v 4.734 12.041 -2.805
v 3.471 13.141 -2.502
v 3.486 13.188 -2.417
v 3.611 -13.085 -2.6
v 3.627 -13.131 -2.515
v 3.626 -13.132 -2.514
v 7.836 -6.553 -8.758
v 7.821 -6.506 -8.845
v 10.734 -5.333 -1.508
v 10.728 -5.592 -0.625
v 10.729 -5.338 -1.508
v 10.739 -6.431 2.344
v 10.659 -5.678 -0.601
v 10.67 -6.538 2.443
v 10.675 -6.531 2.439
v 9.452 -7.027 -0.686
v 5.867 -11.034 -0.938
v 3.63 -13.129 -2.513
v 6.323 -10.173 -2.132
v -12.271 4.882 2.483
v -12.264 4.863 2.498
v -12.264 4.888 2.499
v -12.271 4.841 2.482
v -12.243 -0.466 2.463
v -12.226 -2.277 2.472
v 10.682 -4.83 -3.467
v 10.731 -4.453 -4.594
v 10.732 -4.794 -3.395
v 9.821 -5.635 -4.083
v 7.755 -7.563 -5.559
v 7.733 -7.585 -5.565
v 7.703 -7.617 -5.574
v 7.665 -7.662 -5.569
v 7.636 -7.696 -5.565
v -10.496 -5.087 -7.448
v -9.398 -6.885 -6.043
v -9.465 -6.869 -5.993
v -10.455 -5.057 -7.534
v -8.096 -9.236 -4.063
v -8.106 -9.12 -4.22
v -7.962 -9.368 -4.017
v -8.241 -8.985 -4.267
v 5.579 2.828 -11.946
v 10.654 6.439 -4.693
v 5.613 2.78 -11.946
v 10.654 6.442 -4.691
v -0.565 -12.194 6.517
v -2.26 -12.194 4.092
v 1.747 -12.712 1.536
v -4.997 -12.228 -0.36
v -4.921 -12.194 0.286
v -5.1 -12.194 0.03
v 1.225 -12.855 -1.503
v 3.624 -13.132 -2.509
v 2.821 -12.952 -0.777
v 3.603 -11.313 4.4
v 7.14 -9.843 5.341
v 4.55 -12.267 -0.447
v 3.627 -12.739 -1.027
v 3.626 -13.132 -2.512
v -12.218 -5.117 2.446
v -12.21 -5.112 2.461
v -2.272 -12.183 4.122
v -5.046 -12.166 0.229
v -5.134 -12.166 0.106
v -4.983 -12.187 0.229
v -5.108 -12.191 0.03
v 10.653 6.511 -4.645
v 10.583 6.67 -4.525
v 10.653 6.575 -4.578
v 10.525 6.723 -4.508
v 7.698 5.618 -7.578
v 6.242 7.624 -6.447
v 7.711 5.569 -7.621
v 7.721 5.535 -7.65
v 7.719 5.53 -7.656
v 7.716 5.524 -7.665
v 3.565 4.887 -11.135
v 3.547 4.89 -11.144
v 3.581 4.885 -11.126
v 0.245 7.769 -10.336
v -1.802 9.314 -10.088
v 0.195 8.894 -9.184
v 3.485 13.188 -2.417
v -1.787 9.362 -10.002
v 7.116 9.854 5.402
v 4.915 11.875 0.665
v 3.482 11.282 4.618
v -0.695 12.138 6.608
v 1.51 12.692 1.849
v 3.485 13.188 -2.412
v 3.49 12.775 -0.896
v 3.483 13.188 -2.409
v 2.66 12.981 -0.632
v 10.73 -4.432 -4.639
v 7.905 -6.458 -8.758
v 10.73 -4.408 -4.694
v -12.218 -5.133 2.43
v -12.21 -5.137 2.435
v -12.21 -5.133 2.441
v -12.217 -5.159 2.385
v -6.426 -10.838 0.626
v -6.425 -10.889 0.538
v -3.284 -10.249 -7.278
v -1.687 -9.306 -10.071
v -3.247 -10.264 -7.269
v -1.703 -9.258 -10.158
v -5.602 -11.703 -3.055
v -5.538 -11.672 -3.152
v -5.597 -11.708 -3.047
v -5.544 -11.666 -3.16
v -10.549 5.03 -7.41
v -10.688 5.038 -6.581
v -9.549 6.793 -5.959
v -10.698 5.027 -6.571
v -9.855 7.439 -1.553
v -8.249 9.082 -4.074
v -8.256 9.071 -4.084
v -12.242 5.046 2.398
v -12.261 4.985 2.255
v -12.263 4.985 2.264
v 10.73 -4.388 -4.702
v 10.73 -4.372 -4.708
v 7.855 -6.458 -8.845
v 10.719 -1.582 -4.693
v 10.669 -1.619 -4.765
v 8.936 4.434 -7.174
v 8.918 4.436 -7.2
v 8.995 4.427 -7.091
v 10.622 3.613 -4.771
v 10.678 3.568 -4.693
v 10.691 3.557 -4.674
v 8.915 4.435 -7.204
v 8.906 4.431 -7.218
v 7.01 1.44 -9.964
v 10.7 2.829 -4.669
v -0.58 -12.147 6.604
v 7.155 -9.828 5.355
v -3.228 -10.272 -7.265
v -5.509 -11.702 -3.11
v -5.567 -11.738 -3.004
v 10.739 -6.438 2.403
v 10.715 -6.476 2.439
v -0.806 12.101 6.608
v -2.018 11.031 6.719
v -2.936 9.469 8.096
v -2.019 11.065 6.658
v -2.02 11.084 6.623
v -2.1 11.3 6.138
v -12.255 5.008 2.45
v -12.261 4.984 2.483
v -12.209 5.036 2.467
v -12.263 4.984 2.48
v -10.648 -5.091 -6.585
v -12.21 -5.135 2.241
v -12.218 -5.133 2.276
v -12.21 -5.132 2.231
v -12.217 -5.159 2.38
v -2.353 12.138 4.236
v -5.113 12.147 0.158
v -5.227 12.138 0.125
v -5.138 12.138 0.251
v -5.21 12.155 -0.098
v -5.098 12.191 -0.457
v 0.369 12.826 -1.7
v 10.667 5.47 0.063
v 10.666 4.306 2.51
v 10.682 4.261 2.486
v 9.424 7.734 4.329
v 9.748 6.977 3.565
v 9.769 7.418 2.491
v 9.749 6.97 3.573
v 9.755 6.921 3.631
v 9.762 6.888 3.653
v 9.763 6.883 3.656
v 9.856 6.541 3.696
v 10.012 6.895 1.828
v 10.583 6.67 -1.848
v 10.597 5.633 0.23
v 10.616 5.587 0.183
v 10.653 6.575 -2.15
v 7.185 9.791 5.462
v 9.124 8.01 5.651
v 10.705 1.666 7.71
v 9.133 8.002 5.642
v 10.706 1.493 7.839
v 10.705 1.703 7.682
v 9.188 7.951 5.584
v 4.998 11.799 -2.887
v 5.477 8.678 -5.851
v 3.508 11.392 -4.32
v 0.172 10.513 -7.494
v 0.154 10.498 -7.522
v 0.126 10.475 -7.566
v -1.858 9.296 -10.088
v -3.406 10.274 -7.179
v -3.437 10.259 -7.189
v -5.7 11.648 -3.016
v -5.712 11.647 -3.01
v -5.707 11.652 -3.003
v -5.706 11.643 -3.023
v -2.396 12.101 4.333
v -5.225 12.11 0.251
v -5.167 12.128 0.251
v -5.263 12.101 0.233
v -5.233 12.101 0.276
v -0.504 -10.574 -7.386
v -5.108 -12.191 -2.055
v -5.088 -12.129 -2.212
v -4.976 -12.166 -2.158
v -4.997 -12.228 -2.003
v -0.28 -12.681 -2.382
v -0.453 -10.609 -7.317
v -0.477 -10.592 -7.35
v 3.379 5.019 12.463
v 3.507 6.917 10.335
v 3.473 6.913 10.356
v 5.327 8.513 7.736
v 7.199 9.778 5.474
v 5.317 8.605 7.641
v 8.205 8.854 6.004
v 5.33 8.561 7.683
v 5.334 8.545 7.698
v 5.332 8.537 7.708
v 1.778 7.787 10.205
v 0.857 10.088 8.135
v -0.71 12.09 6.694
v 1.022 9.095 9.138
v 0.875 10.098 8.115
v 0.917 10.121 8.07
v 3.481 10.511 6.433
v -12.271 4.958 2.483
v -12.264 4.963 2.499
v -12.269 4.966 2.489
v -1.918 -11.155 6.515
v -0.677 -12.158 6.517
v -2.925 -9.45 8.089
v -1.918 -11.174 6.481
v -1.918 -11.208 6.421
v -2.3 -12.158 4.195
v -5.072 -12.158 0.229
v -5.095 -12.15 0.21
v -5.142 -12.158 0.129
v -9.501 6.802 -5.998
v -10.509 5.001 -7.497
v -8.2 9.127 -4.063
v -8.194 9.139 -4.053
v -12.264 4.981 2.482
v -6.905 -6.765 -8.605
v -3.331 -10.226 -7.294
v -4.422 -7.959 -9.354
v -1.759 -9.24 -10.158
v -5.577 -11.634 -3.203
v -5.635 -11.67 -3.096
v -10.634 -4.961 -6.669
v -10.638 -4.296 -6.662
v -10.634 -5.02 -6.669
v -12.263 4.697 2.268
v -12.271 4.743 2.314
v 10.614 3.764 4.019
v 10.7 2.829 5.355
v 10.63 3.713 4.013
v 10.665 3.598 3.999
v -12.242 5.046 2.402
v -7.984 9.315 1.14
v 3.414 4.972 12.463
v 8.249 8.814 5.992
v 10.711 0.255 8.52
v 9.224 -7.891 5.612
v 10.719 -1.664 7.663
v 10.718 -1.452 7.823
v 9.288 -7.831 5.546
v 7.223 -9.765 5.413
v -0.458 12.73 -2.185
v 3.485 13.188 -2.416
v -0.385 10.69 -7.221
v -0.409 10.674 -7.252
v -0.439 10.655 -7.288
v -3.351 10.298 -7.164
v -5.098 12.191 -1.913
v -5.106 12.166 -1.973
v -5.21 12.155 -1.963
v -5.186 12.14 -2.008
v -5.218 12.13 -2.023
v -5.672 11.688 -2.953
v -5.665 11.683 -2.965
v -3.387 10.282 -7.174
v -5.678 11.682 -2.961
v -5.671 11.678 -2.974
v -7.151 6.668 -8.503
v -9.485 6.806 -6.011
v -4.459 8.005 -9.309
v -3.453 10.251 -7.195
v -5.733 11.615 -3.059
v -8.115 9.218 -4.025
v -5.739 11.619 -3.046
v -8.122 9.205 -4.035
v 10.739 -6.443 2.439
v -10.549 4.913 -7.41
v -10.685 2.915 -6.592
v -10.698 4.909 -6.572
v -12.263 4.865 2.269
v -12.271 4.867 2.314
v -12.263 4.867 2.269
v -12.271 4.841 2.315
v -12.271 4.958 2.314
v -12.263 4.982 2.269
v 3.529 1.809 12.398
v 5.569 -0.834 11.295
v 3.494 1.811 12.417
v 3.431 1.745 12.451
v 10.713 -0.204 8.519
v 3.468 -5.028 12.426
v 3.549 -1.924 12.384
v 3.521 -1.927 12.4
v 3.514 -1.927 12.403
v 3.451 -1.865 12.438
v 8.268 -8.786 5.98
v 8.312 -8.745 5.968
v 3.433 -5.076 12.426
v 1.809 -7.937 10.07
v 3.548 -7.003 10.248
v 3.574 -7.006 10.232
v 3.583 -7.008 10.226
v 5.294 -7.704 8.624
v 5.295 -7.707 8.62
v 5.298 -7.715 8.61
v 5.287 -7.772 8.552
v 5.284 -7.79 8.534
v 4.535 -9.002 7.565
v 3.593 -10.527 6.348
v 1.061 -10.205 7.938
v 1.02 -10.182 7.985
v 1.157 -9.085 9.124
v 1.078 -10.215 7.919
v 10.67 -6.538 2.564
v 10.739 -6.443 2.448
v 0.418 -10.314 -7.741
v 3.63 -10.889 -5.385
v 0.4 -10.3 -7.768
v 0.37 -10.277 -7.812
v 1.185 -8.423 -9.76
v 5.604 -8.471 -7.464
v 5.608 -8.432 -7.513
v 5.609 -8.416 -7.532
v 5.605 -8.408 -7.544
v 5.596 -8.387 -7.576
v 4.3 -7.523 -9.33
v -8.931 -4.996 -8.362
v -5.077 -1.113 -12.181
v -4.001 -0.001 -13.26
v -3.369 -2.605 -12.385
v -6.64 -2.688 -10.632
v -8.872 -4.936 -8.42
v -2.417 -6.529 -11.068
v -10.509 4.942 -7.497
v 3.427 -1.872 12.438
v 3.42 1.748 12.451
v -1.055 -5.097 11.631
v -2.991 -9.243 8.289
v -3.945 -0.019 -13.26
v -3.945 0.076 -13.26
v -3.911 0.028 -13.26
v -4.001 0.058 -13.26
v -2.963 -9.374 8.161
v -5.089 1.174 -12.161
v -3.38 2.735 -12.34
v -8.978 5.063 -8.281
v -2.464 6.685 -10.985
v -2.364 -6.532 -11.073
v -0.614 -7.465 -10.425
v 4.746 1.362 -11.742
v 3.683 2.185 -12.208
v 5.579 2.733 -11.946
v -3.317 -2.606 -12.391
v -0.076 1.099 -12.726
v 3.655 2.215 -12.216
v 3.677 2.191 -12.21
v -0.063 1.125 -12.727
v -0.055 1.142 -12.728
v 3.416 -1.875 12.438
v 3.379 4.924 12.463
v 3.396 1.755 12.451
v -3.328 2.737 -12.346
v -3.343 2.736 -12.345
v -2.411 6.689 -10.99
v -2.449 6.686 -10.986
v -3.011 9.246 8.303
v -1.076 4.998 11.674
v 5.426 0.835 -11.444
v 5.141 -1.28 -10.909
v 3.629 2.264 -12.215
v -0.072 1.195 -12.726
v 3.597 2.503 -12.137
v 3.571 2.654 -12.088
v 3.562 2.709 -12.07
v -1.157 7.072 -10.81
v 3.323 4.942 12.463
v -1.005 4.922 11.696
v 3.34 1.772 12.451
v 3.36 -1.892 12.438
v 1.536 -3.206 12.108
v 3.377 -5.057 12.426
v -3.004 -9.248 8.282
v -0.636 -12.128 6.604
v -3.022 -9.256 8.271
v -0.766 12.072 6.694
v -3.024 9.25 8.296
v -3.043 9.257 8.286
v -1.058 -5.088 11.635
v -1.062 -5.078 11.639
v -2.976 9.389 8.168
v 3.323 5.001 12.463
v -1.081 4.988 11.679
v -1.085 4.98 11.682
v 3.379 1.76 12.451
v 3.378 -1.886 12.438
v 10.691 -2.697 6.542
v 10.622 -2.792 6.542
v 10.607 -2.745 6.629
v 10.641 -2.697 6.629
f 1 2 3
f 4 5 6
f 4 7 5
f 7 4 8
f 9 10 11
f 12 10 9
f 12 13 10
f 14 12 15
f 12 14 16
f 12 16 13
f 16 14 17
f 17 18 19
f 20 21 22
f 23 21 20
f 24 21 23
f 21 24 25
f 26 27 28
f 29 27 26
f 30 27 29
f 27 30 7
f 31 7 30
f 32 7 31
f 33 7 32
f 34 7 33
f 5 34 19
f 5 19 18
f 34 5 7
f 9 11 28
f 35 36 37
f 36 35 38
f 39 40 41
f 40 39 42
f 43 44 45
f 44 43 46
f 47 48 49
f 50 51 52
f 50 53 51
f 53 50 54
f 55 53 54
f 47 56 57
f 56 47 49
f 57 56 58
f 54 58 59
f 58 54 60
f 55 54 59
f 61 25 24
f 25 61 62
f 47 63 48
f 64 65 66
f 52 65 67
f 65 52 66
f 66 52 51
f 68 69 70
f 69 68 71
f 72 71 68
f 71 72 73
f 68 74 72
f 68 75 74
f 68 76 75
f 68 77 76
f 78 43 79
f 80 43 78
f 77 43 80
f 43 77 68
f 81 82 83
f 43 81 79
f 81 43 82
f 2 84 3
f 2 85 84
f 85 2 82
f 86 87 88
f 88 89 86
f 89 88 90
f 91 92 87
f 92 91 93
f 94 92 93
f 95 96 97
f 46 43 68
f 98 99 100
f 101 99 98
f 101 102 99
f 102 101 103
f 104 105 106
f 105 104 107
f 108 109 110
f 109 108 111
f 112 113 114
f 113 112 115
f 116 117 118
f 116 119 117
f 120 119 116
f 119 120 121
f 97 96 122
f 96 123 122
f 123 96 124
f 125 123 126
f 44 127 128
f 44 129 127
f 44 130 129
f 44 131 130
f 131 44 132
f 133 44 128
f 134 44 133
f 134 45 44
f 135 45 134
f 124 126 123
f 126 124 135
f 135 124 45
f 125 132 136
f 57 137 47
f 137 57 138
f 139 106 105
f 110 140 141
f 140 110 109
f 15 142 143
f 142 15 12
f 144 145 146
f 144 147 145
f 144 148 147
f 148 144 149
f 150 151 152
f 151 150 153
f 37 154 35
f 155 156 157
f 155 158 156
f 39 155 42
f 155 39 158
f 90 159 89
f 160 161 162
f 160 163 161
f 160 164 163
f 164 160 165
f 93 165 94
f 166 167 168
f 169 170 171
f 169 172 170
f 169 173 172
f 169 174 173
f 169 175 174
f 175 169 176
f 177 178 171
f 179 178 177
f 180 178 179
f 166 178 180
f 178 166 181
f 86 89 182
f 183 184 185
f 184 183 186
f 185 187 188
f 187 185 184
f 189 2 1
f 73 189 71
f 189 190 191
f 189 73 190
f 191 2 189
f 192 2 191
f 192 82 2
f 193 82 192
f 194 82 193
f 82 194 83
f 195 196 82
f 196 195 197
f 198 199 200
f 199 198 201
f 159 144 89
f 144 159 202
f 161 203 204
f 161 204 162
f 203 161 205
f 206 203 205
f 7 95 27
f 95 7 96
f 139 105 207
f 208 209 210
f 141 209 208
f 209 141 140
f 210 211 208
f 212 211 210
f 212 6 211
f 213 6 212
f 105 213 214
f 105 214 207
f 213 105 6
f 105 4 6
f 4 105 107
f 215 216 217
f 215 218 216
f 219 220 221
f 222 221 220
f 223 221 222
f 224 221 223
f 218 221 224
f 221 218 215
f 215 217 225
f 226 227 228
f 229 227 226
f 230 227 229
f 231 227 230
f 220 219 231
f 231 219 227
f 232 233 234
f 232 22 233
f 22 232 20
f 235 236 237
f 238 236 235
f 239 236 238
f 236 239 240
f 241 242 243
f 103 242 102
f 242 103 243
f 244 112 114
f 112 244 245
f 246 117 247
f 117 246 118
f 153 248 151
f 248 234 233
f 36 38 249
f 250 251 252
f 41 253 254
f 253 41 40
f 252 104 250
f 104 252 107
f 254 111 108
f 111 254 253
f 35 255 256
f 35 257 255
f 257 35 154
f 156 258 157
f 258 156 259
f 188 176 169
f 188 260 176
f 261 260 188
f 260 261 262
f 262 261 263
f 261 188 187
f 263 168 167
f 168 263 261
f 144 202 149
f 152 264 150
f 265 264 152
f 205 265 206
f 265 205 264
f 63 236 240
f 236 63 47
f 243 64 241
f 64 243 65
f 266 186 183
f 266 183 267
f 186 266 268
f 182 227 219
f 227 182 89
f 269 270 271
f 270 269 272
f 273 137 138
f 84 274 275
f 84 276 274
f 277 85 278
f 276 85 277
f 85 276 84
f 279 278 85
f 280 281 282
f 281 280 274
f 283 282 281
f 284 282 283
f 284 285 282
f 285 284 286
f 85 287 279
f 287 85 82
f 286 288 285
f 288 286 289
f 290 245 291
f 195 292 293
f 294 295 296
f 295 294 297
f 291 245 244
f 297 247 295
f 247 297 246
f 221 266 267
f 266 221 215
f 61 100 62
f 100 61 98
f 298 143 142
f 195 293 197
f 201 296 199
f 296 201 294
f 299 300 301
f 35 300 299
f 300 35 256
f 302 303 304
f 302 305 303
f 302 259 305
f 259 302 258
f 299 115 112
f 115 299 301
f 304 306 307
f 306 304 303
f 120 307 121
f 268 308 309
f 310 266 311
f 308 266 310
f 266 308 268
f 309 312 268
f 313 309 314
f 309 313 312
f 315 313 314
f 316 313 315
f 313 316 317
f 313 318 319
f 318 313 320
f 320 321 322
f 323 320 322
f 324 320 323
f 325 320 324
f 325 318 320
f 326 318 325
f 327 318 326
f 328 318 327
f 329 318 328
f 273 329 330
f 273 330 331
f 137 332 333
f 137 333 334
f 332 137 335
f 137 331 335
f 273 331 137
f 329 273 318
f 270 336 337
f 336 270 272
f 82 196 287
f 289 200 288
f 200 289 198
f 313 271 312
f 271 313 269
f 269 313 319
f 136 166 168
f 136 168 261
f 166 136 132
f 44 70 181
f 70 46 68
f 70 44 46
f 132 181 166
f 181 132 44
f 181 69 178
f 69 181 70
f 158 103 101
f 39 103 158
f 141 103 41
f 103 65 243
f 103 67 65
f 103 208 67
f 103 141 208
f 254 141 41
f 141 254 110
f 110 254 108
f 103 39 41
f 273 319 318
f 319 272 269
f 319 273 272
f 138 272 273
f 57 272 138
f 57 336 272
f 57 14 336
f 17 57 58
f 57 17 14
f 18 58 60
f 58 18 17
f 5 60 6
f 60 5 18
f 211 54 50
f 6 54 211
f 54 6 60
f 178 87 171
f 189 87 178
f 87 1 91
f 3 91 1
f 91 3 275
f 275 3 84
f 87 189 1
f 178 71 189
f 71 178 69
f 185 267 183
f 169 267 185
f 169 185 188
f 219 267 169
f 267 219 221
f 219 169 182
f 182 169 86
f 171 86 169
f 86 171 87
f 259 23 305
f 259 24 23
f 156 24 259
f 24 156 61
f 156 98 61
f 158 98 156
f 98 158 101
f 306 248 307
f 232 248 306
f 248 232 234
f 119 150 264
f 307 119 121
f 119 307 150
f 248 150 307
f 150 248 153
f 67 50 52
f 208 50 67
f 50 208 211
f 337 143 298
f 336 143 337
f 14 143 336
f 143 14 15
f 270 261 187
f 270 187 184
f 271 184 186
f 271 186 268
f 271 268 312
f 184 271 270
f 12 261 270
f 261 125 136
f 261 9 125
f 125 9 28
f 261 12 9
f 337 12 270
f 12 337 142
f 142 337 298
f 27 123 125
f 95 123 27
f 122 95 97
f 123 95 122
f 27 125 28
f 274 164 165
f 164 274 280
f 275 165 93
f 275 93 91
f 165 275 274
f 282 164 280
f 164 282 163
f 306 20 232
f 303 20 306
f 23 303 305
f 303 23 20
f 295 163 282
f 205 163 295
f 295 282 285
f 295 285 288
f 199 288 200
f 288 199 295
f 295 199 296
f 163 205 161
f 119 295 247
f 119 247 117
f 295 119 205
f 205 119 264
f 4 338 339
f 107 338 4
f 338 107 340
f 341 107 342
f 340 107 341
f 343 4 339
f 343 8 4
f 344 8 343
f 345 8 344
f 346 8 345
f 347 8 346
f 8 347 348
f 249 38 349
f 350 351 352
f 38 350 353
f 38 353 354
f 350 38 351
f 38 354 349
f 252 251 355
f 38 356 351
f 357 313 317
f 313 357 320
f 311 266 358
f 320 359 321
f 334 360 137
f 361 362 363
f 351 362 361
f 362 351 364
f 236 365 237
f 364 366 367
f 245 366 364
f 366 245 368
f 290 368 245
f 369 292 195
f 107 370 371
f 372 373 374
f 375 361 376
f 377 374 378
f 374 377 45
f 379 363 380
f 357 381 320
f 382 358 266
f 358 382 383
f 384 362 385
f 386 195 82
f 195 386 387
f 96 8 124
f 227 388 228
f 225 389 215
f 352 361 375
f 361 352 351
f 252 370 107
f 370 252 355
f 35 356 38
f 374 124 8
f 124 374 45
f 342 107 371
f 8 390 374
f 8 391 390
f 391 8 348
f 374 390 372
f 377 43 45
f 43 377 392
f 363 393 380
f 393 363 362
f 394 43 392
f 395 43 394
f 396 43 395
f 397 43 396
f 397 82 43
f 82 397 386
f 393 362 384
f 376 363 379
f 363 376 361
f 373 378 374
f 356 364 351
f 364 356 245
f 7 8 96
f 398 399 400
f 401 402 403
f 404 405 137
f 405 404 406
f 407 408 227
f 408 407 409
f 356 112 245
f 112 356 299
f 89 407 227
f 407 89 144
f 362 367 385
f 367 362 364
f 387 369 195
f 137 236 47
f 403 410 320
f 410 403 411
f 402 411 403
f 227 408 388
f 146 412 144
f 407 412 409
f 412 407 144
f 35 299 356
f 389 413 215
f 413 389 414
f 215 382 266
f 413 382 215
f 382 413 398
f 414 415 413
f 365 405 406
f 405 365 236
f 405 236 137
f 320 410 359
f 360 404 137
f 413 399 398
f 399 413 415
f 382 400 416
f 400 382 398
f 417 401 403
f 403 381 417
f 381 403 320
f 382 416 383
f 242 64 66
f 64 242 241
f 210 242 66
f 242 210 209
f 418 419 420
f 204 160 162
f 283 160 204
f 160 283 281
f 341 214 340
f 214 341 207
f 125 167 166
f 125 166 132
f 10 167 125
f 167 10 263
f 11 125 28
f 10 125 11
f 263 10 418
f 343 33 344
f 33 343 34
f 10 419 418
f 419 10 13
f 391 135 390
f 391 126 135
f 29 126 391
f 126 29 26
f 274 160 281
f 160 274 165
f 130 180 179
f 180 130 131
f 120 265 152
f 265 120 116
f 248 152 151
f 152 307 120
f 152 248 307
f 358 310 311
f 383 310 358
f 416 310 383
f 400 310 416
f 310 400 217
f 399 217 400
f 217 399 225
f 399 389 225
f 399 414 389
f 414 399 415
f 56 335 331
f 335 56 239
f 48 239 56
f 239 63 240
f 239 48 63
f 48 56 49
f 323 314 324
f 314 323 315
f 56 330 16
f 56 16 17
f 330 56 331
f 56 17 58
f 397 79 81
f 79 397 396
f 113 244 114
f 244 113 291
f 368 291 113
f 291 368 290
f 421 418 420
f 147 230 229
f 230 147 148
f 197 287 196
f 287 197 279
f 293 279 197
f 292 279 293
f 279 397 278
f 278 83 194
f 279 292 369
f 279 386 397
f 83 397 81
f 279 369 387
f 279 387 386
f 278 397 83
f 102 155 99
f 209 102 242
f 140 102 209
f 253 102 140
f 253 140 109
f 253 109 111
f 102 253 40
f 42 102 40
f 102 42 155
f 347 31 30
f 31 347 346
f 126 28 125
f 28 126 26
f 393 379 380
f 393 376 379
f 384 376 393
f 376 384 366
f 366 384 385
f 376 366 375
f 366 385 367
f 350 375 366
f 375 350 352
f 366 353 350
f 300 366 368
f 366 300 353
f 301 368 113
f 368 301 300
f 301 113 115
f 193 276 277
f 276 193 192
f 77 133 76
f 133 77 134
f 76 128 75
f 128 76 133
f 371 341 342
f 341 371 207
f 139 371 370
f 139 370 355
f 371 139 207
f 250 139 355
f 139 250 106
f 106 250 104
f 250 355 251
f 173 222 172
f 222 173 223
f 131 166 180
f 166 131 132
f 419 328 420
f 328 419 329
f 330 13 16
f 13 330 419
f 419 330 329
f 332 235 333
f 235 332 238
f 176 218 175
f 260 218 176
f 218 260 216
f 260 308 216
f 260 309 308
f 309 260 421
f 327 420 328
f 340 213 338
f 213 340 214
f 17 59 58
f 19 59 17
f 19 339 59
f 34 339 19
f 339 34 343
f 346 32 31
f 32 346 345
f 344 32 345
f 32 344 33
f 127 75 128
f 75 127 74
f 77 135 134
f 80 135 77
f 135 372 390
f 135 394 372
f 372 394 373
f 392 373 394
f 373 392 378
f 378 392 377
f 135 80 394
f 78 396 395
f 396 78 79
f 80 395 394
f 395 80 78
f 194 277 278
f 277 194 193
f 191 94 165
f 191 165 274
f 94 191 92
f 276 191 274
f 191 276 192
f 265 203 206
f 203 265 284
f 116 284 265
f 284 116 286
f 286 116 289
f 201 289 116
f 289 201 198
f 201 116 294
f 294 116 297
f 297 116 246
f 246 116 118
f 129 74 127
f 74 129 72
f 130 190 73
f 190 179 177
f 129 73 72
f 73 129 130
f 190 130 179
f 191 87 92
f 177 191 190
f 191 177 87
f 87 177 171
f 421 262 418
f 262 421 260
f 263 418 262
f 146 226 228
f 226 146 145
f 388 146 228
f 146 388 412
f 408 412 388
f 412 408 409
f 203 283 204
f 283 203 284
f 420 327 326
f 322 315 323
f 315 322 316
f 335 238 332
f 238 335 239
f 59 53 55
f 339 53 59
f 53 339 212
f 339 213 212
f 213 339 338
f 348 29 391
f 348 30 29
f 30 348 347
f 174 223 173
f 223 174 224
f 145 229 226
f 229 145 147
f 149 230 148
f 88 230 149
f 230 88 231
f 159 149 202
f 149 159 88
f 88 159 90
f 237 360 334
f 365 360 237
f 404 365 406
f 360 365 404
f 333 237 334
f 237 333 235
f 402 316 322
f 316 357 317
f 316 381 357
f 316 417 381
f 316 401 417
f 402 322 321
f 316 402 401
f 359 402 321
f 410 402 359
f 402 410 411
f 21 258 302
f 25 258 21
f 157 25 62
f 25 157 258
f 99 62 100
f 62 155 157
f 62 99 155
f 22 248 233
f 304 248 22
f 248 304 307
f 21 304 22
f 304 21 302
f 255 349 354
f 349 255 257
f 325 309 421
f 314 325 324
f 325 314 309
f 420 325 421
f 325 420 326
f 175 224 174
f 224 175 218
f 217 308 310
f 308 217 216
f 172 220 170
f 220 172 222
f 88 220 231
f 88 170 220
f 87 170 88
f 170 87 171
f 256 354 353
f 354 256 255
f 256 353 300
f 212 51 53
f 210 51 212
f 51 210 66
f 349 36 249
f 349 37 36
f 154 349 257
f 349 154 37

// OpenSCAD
// Auto-generated OpenSCAD file

    inner_points = 10*[[-0.5027427746732974, -1.2132577404539668, 0.4881043623012211], [-0.499831290049384, -1.204459418490458, -0.5118526931706182], [-0.5157776363132736, 1.200827522309684, 0.5093072214379191], [-0.5128661516893601, 1.2096258442731929, -0.49064983403392026], [-0.5086193277767076, -0.5124098904764615, 1.201390950781287], [-0.501590382111015, -0.4911688622660335, -1.2127189343294926], [-0.5140185442516425, 0.48753696608525965, 1.2101734625967935], [-0.5069895985859499, 0.5087779942956876, -1.2039364225139861], [0.359529337093046, -1.3036867530634884, -0.010202168810380517], [0.34542050452204526, 1.3093003061927015, 0.012747640543079655], [0.3486708828251333, -0.00868878506597237, 1.3077795910126873], [0.356278958789958, 0.014302338195185572, -1.3052341192799881], [0.35477328534708075, -0.9291522473942972, 0.9169986098966502], [0.36015300745359075, -0.9128950682292366, -0.9306811039847213], [0.34479683416150053, 0.9185086213584498, 0.9332265757174204], [0.3501765562680105, 0.9347658005235104, -0.914453138163951], [-1.2136540747107942, -0.5099881151558083, 0.492222324416665], [-1.210742590086881, -0.5011897931922996, -0.5077347310551743], [-1.2190532911857292, 0.4899587414059127, 0.5010048362321716], [-1.2161418065618157, 0.49875706336942155, -0.49895221923966776], [1.063883448467321, -0.6442596016793936, -0.2729589342943806], [1.0552533480577226, 0.6574723104142199, 0.27968882911738335], [1.0591273967213557, -0.26972509601020234, 0.6542418444126501], [1.0600093998036881, 0.2829378047450287, -0.6475119495896475]];

    outer_points = 10*[[0.3363850936800798, 0.49717027434153493, 1.2376593574683699], [0.341756318462831, -0.5028082510208011, 1.2339045261138102], [-1.0468325897833741, 0.49717027434153493, -0.7410108942158731], [-1.041461365000623, -0.5028082510208011, -0.7447657255704329], [-0.07254801541637895, 1.2042618706661667, 0.6607753251951688], [-0.05958073169930672, -1.2098998473454328, 0.6517103604145671], [-0.6454955396212365, 1.2042618706661667, -0.1588167285166301], [-0.6325282559041643, -1.2098998473454328, -0.16788169329723182], [1.1011301516039498, 0.002818988339633091, 0.8244018077378379], [-0.3960538802834066, 0.002818988339633091, -1.317295439635775], [0.3455202922831028, 1.3093538952497537, -0.2415408923617442], [0.35955597903744035, -1.3037159185704876, -0.2513527395361928], [0.8769102618348533, 0.926678680872714, 0.514226519320763], [0.8868349911174557, -0.9210407041934477, 0.5072884956477444], [-0.1817587197969125, 0.926678680872714, -1.0001821275456813], [-0.17183399051431014, -0.9210407041934477, -1.0071201512187], [-0.6482766395432775, 0.49253622567066274, 1.063246637982406], [-0.6429054147605264, -0.5074422996916733, 1.0594918066278463], [-1.2212241637481351, 0.49253622567066274, 0.24365458427060716], [-1.215852938965384, -0.5074422996916733, 0.23989975291604748], [1.3078142401788866, -0.26313920206751534, -0.11716493364872071], [0.5563153383297748, 0.27804527608852586, -1.1859814572497327], [1.0835943504097902, 0.6607204904655656, -0.4273402220657956], [0.7805352280988713, -0.6458144164445551, -0.8758061688326578]];

    // Convex hull for inner set (I)
    module inner_hull() {
        hull() {
            for (p = inner_points) {
                translate(p) sphere(r=0.1);
            }
        }
    }

    // Convex hull for outer set (O) minus inner hull (O \ I)
    module outer_minus_inner() {
        difference() {
            hull() {
                for (p = outer_points) {
                    translate(p) sphere(r=0.1);
                }
            }
            inner_hull(); // Subtract inner hull
        }
    }

    // Convex hull for outer set (O) minus all translated inner hulls
    module outer_minus_AllTranslationInner() {
        difference() {
            hull() {
                for (p = outer_points) {
                    translate(p) sphere(r=0.1);
                }
            }
            hull() {
                translate([0,0,50]) inner_hull();
                translate([0,0,-50]) inner_hull();
            }; // Subtract translated inner hulls
        }
    }

    // Difference between outer_minus_inner and outer_minus_AllTranslationInner
    module outer_minus_inner_diff() {
        difference() {
            // Outer minus inner
            difference() {
                hull() {
                    for (p = outer_points) {
                        translate(p) sphere(r=0.1);
                    }
                }
                inner_hull();
            }

            // Subtract Outer minus AllTranslationInner
            difference() {
                hull() {
                    for (p = outer_points) {
                        translate(p) sphere(r=0.1);
                    }
                }
                hull() {
                    translate([0,0,50]) inner_hull();
                    translate([0,0,-50]) inner_hull();
                };
            }
        }
    }

    // Rendering all with colors applied
    color([1, 1, 0, 1]) outer_minus_inner_diff(); // Opaque yellow
    
